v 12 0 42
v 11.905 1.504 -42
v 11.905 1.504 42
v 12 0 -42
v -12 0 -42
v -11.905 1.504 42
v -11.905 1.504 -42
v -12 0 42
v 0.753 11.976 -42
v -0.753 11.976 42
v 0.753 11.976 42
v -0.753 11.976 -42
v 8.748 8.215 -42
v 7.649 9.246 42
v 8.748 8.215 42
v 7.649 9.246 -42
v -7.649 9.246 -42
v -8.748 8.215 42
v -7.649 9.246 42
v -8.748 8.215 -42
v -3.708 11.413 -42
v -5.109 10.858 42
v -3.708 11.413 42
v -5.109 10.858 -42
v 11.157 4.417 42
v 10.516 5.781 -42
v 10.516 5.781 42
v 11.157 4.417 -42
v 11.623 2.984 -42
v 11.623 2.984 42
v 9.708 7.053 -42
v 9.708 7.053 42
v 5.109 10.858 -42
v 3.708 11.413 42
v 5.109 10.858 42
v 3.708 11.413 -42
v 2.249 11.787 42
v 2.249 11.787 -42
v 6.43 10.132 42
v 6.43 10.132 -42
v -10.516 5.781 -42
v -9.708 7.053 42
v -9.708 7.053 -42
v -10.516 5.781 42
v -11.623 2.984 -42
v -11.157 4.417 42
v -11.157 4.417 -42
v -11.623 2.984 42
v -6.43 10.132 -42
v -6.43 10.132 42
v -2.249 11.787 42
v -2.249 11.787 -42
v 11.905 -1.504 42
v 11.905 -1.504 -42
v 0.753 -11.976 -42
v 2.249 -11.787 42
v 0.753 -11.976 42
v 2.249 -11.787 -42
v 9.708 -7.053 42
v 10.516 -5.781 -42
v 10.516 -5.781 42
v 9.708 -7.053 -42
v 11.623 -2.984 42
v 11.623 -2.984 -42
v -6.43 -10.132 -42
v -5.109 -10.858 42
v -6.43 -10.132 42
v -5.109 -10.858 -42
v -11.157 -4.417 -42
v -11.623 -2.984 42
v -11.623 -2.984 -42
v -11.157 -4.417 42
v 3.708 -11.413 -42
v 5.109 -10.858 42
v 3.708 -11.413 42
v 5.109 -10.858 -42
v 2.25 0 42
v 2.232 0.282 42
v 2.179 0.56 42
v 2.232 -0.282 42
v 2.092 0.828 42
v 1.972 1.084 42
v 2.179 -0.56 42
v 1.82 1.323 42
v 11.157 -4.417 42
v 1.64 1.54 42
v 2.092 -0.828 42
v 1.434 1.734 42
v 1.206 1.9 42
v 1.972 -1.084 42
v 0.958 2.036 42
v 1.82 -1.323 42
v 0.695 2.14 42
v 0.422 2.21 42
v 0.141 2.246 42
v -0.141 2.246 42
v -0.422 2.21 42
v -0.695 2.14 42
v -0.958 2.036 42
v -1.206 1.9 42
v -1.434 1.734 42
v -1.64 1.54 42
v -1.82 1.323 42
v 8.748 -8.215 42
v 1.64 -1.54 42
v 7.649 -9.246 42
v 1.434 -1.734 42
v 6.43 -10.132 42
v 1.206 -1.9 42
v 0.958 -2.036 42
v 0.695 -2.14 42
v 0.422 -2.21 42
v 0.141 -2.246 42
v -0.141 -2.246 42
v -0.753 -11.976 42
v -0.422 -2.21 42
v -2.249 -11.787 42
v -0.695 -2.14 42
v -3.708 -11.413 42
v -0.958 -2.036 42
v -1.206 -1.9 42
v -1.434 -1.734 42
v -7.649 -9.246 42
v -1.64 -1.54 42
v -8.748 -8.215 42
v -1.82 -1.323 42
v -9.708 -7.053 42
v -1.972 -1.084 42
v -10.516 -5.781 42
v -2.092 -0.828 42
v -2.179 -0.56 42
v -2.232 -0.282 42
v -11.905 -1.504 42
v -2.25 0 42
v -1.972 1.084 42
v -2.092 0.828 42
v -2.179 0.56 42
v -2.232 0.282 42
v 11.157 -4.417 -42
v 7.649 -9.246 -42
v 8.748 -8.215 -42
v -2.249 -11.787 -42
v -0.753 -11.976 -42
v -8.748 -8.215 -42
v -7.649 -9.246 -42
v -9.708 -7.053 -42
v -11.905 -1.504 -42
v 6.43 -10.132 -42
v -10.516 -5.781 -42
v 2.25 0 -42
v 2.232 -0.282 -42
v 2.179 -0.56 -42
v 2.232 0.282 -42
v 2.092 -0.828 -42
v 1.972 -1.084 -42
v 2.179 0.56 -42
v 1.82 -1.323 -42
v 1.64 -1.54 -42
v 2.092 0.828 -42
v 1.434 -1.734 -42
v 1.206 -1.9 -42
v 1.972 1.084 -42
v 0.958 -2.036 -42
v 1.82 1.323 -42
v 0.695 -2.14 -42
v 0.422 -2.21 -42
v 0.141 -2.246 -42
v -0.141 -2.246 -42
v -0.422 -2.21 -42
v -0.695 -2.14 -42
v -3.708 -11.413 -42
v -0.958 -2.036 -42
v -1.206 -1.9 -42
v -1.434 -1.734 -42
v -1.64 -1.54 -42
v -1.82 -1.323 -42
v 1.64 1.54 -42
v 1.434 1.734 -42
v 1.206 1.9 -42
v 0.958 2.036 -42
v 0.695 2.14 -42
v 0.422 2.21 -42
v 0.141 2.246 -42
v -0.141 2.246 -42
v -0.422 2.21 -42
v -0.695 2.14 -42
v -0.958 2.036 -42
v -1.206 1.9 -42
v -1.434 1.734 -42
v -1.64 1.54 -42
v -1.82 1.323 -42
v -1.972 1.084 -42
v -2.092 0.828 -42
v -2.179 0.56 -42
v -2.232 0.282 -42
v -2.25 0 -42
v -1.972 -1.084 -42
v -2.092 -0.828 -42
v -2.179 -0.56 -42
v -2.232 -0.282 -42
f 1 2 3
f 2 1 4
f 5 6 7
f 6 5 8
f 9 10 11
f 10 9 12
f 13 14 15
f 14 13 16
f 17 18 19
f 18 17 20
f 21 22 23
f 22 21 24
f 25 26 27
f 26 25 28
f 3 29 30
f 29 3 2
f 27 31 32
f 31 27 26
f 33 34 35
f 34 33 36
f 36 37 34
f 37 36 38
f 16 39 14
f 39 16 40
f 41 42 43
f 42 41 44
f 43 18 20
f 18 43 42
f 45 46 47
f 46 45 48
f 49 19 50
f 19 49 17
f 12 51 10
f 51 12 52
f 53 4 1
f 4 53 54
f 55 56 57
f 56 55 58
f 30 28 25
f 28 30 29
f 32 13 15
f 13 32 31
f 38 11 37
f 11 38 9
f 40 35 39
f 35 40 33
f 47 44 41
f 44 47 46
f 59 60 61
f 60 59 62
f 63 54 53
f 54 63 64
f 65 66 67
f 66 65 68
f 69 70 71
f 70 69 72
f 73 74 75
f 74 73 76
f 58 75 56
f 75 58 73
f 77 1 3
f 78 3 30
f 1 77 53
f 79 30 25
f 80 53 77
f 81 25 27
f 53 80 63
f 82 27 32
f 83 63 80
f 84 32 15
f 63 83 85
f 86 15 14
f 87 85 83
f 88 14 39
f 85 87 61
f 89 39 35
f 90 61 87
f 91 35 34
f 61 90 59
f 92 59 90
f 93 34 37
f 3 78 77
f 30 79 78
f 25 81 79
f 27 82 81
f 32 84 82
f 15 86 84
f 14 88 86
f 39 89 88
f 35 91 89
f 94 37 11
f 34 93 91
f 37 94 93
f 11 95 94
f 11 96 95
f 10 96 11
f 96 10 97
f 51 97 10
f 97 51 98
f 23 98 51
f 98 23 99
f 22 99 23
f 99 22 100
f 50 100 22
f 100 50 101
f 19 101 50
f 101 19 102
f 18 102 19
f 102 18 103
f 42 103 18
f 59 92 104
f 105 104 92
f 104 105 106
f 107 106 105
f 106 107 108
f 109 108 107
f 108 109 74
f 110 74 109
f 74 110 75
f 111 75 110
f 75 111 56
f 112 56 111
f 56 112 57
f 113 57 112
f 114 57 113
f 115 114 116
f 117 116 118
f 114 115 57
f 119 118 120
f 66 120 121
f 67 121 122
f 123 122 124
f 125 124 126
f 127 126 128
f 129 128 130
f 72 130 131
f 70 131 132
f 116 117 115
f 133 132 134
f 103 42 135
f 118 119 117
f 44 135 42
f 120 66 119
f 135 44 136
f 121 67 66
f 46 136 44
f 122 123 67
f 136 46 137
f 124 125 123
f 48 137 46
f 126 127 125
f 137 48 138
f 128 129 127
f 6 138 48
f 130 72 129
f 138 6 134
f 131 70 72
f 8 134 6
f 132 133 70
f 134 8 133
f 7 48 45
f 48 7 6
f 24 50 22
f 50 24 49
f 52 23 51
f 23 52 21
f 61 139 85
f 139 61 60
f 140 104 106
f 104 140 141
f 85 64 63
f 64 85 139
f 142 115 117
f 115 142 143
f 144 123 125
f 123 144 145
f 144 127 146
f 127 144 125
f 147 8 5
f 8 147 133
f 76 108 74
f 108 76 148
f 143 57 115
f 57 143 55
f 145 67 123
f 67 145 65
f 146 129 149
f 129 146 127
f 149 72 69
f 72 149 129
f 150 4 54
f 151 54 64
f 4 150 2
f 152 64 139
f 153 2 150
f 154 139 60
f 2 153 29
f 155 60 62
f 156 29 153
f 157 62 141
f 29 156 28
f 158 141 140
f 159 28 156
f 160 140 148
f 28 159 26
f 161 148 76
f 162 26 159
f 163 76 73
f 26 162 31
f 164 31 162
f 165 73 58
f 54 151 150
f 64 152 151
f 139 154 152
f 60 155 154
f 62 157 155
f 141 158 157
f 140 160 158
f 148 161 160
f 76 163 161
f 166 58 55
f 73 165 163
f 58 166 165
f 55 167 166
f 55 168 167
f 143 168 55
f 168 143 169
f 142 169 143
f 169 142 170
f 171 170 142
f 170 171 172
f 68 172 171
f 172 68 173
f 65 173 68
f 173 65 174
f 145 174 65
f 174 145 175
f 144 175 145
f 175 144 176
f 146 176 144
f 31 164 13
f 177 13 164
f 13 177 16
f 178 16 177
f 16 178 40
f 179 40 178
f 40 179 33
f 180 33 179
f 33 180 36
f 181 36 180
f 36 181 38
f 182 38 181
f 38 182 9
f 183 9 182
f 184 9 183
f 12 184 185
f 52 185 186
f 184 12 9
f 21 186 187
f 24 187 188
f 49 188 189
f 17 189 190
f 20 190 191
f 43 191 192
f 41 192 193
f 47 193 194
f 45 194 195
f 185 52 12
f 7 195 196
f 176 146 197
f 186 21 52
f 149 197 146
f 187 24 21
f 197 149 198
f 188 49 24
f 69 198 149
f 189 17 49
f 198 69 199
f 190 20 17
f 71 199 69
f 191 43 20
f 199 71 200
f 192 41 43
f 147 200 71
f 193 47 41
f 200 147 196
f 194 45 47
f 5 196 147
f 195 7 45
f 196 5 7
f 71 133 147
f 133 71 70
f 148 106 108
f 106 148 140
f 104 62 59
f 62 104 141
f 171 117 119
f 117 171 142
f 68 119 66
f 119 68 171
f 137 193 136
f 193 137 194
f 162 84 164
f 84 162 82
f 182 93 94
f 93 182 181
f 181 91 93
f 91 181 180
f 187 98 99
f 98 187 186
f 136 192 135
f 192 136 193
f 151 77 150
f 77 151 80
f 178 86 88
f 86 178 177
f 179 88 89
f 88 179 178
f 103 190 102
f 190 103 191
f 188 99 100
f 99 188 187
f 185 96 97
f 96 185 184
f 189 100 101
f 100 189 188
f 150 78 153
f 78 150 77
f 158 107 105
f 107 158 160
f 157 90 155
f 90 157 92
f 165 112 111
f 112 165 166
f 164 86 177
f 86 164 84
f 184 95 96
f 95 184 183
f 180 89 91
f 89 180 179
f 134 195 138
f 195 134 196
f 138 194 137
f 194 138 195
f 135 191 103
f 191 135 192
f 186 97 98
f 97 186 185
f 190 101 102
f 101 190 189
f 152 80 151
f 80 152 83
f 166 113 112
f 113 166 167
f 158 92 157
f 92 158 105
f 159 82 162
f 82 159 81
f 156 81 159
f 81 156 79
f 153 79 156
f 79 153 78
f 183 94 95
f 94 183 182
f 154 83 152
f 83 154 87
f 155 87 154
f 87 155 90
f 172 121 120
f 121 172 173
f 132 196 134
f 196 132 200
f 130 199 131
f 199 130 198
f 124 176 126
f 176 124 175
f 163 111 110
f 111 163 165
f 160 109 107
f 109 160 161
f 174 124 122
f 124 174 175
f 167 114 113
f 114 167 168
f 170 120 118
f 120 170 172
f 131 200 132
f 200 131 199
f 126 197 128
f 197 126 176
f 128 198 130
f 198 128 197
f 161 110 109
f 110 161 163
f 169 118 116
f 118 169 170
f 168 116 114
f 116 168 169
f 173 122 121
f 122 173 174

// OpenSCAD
$fn = 50;


difference() {
	union() {
		translate(v = [0, 0, -42.0000000000]) {
			cylinder(h = 84, r = 12.0000000000);
		}
	}
	union() {
		translate(v = [0, 0, -100.0000000000]) {
			cylinder(h = 200, r = 2.2500000000);
		}
	}
}
